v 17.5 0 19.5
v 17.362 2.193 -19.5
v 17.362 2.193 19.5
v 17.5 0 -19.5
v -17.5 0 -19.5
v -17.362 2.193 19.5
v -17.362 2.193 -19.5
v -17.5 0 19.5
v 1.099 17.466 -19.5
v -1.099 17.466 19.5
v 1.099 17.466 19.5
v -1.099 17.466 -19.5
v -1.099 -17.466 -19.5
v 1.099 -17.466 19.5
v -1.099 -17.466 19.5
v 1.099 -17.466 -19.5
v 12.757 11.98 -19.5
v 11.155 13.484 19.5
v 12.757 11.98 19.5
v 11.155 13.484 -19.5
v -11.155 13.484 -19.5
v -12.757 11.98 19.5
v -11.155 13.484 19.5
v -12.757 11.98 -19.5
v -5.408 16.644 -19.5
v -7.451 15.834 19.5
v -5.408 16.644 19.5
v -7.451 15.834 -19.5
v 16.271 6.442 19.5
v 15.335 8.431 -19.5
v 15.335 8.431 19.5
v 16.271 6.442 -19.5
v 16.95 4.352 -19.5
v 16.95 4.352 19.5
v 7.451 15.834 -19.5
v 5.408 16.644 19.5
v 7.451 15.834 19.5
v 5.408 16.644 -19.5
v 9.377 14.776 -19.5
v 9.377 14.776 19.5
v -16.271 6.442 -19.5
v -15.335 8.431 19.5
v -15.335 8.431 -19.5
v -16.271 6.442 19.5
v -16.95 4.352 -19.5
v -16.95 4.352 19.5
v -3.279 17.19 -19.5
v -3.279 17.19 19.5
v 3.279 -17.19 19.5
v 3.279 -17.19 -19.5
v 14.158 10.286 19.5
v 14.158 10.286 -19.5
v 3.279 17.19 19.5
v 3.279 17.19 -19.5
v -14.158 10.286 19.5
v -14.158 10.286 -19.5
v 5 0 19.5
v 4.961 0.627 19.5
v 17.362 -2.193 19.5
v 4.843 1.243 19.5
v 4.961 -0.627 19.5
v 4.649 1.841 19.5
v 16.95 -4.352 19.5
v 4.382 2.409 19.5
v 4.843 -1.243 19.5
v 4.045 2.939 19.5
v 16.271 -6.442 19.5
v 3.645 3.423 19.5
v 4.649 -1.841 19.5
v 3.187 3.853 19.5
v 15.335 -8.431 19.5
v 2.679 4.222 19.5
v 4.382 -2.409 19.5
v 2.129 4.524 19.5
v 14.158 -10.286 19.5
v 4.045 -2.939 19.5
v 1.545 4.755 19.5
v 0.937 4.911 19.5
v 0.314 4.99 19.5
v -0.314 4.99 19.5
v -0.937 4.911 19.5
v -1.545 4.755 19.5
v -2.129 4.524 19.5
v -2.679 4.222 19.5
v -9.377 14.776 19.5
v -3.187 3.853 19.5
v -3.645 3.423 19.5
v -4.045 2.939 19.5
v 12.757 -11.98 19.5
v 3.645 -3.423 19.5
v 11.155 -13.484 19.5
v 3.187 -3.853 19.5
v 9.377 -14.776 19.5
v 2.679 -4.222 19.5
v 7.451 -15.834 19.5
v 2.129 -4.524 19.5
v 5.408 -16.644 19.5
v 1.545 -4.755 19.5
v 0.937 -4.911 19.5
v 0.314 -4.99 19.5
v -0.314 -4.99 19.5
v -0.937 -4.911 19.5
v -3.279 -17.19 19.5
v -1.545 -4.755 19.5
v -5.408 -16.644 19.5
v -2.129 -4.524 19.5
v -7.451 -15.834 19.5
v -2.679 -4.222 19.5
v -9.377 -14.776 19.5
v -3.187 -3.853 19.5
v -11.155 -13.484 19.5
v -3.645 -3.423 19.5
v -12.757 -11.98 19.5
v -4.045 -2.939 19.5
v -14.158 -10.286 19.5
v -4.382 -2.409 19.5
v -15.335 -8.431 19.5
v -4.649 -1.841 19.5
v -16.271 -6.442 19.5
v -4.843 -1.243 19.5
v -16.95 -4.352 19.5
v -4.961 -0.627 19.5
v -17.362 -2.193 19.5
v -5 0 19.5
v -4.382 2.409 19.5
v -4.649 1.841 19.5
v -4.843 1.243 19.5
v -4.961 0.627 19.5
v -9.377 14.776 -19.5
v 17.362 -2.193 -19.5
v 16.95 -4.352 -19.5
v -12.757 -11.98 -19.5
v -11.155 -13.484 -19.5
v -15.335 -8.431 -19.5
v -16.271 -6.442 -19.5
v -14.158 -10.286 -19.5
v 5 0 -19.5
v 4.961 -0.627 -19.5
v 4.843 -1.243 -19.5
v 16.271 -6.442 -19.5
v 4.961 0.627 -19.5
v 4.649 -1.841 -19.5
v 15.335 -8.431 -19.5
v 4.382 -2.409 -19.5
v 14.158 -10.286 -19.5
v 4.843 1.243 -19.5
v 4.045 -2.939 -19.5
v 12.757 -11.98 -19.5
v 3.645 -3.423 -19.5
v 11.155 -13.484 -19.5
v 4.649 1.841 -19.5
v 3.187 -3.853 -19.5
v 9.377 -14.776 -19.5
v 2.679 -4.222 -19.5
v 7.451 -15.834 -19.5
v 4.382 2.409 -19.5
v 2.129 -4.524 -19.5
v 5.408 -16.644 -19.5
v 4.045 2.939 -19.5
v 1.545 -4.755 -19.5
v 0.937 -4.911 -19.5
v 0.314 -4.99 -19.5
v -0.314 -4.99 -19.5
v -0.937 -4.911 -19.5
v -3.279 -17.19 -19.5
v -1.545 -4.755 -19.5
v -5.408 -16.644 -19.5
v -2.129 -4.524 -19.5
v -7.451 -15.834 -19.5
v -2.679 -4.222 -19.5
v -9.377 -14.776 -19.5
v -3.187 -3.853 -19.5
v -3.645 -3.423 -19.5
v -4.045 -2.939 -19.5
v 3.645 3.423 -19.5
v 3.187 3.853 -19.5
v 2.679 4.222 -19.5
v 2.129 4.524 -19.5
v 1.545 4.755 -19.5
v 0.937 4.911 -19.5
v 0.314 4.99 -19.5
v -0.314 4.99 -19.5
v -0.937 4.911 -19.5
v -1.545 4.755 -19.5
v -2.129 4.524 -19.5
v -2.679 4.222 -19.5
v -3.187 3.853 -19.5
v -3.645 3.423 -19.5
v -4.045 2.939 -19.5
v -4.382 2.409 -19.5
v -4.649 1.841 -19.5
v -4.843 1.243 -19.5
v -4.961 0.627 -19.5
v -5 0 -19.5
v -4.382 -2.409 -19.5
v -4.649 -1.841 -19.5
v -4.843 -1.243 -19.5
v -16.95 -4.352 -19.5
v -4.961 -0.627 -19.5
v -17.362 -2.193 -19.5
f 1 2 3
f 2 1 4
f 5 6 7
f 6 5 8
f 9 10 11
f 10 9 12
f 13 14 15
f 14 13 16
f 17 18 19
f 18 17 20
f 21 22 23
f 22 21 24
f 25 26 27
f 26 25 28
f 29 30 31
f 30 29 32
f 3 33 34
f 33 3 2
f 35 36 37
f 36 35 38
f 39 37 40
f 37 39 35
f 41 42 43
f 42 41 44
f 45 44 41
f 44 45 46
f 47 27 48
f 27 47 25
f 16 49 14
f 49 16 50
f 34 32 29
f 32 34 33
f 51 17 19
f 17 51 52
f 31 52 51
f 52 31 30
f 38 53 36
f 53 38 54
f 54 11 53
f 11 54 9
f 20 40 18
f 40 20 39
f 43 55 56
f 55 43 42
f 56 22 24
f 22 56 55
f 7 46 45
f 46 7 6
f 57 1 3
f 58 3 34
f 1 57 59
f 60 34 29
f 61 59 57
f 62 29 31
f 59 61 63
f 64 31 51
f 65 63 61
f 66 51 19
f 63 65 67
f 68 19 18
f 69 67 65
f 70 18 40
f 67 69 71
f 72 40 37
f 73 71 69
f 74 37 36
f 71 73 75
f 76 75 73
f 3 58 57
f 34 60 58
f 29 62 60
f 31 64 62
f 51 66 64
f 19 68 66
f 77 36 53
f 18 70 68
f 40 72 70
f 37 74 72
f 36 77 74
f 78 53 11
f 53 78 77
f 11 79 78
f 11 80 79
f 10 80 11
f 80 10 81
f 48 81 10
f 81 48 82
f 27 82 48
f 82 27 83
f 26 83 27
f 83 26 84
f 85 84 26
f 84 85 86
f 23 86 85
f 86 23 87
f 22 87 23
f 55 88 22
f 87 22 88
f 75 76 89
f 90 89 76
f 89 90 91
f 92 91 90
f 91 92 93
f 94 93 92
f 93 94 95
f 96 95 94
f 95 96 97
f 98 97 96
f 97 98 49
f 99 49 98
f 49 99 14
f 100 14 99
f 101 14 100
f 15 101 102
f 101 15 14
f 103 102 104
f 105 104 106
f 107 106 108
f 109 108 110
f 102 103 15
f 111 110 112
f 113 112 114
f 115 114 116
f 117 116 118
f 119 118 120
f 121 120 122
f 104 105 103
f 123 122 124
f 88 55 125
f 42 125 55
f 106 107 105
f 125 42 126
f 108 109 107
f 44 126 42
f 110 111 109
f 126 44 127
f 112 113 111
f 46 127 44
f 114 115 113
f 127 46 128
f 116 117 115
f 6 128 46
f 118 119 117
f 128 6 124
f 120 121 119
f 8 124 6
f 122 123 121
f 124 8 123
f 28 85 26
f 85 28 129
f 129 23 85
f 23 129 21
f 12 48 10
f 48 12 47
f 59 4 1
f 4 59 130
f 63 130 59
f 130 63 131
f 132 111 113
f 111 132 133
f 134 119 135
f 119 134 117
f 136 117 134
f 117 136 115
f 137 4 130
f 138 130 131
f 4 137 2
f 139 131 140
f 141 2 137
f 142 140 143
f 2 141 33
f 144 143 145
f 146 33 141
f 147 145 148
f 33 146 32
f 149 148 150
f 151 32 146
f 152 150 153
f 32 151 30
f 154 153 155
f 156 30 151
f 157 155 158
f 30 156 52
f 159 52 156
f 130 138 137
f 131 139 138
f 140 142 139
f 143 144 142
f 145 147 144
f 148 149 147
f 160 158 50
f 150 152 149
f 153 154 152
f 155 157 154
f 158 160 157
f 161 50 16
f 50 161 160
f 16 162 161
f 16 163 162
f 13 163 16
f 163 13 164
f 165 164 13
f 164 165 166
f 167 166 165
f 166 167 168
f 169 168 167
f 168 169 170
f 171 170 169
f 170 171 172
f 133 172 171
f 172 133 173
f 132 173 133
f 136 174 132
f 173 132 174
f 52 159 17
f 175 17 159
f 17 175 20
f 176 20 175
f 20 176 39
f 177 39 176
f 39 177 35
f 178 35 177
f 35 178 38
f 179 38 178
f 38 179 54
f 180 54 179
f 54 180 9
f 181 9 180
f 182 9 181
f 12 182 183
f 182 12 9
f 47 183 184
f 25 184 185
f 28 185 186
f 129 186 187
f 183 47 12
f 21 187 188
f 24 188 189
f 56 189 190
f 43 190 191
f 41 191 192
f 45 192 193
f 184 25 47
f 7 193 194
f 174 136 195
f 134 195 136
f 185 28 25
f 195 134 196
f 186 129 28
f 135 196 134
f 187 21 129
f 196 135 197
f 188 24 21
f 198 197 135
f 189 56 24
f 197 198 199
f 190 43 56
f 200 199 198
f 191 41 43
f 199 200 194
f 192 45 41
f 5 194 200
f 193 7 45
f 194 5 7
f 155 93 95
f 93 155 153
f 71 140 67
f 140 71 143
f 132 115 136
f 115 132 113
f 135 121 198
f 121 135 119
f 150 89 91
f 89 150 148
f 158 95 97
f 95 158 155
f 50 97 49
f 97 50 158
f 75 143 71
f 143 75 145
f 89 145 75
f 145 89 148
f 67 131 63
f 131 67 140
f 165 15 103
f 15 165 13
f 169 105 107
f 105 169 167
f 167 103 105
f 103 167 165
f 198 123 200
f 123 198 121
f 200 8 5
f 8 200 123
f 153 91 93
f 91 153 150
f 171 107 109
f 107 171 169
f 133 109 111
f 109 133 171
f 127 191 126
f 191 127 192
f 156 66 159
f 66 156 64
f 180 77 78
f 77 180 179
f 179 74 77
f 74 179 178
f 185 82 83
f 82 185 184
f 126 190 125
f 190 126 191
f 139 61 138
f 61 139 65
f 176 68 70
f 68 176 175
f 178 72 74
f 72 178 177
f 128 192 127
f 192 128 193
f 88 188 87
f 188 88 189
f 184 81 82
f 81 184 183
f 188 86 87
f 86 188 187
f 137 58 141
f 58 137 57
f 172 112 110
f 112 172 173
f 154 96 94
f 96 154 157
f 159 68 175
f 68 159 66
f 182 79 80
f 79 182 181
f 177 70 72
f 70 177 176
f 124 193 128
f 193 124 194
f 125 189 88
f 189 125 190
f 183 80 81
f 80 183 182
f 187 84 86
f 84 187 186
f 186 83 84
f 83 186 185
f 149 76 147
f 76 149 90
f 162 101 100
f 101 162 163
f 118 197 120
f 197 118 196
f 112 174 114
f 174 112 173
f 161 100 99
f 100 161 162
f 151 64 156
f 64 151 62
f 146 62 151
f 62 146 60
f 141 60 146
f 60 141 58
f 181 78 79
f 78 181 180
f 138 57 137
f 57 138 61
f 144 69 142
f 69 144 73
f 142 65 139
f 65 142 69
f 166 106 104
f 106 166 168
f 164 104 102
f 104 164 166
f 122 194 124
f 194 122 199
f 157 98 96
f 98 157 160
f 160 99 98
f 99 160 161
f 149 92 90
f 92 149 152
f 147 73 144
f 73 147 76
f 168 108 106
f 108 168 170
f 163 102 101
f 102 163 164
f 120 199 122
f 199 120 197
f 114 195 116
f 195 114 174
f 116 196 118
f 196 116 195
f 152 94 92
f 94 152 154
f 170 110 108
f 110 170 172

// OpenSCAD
$fn = 50;


difference() {
	union() {
		translate(v = [0, 0, -19.5000000000]) {
			cylinder(h = 39, r = 17.5000000000);
		}
	}
	union() {
		translate(v = [0, 0, -100.0000000000]) {
			cylinder(h = 200, r = 5);
		}
	}
}
